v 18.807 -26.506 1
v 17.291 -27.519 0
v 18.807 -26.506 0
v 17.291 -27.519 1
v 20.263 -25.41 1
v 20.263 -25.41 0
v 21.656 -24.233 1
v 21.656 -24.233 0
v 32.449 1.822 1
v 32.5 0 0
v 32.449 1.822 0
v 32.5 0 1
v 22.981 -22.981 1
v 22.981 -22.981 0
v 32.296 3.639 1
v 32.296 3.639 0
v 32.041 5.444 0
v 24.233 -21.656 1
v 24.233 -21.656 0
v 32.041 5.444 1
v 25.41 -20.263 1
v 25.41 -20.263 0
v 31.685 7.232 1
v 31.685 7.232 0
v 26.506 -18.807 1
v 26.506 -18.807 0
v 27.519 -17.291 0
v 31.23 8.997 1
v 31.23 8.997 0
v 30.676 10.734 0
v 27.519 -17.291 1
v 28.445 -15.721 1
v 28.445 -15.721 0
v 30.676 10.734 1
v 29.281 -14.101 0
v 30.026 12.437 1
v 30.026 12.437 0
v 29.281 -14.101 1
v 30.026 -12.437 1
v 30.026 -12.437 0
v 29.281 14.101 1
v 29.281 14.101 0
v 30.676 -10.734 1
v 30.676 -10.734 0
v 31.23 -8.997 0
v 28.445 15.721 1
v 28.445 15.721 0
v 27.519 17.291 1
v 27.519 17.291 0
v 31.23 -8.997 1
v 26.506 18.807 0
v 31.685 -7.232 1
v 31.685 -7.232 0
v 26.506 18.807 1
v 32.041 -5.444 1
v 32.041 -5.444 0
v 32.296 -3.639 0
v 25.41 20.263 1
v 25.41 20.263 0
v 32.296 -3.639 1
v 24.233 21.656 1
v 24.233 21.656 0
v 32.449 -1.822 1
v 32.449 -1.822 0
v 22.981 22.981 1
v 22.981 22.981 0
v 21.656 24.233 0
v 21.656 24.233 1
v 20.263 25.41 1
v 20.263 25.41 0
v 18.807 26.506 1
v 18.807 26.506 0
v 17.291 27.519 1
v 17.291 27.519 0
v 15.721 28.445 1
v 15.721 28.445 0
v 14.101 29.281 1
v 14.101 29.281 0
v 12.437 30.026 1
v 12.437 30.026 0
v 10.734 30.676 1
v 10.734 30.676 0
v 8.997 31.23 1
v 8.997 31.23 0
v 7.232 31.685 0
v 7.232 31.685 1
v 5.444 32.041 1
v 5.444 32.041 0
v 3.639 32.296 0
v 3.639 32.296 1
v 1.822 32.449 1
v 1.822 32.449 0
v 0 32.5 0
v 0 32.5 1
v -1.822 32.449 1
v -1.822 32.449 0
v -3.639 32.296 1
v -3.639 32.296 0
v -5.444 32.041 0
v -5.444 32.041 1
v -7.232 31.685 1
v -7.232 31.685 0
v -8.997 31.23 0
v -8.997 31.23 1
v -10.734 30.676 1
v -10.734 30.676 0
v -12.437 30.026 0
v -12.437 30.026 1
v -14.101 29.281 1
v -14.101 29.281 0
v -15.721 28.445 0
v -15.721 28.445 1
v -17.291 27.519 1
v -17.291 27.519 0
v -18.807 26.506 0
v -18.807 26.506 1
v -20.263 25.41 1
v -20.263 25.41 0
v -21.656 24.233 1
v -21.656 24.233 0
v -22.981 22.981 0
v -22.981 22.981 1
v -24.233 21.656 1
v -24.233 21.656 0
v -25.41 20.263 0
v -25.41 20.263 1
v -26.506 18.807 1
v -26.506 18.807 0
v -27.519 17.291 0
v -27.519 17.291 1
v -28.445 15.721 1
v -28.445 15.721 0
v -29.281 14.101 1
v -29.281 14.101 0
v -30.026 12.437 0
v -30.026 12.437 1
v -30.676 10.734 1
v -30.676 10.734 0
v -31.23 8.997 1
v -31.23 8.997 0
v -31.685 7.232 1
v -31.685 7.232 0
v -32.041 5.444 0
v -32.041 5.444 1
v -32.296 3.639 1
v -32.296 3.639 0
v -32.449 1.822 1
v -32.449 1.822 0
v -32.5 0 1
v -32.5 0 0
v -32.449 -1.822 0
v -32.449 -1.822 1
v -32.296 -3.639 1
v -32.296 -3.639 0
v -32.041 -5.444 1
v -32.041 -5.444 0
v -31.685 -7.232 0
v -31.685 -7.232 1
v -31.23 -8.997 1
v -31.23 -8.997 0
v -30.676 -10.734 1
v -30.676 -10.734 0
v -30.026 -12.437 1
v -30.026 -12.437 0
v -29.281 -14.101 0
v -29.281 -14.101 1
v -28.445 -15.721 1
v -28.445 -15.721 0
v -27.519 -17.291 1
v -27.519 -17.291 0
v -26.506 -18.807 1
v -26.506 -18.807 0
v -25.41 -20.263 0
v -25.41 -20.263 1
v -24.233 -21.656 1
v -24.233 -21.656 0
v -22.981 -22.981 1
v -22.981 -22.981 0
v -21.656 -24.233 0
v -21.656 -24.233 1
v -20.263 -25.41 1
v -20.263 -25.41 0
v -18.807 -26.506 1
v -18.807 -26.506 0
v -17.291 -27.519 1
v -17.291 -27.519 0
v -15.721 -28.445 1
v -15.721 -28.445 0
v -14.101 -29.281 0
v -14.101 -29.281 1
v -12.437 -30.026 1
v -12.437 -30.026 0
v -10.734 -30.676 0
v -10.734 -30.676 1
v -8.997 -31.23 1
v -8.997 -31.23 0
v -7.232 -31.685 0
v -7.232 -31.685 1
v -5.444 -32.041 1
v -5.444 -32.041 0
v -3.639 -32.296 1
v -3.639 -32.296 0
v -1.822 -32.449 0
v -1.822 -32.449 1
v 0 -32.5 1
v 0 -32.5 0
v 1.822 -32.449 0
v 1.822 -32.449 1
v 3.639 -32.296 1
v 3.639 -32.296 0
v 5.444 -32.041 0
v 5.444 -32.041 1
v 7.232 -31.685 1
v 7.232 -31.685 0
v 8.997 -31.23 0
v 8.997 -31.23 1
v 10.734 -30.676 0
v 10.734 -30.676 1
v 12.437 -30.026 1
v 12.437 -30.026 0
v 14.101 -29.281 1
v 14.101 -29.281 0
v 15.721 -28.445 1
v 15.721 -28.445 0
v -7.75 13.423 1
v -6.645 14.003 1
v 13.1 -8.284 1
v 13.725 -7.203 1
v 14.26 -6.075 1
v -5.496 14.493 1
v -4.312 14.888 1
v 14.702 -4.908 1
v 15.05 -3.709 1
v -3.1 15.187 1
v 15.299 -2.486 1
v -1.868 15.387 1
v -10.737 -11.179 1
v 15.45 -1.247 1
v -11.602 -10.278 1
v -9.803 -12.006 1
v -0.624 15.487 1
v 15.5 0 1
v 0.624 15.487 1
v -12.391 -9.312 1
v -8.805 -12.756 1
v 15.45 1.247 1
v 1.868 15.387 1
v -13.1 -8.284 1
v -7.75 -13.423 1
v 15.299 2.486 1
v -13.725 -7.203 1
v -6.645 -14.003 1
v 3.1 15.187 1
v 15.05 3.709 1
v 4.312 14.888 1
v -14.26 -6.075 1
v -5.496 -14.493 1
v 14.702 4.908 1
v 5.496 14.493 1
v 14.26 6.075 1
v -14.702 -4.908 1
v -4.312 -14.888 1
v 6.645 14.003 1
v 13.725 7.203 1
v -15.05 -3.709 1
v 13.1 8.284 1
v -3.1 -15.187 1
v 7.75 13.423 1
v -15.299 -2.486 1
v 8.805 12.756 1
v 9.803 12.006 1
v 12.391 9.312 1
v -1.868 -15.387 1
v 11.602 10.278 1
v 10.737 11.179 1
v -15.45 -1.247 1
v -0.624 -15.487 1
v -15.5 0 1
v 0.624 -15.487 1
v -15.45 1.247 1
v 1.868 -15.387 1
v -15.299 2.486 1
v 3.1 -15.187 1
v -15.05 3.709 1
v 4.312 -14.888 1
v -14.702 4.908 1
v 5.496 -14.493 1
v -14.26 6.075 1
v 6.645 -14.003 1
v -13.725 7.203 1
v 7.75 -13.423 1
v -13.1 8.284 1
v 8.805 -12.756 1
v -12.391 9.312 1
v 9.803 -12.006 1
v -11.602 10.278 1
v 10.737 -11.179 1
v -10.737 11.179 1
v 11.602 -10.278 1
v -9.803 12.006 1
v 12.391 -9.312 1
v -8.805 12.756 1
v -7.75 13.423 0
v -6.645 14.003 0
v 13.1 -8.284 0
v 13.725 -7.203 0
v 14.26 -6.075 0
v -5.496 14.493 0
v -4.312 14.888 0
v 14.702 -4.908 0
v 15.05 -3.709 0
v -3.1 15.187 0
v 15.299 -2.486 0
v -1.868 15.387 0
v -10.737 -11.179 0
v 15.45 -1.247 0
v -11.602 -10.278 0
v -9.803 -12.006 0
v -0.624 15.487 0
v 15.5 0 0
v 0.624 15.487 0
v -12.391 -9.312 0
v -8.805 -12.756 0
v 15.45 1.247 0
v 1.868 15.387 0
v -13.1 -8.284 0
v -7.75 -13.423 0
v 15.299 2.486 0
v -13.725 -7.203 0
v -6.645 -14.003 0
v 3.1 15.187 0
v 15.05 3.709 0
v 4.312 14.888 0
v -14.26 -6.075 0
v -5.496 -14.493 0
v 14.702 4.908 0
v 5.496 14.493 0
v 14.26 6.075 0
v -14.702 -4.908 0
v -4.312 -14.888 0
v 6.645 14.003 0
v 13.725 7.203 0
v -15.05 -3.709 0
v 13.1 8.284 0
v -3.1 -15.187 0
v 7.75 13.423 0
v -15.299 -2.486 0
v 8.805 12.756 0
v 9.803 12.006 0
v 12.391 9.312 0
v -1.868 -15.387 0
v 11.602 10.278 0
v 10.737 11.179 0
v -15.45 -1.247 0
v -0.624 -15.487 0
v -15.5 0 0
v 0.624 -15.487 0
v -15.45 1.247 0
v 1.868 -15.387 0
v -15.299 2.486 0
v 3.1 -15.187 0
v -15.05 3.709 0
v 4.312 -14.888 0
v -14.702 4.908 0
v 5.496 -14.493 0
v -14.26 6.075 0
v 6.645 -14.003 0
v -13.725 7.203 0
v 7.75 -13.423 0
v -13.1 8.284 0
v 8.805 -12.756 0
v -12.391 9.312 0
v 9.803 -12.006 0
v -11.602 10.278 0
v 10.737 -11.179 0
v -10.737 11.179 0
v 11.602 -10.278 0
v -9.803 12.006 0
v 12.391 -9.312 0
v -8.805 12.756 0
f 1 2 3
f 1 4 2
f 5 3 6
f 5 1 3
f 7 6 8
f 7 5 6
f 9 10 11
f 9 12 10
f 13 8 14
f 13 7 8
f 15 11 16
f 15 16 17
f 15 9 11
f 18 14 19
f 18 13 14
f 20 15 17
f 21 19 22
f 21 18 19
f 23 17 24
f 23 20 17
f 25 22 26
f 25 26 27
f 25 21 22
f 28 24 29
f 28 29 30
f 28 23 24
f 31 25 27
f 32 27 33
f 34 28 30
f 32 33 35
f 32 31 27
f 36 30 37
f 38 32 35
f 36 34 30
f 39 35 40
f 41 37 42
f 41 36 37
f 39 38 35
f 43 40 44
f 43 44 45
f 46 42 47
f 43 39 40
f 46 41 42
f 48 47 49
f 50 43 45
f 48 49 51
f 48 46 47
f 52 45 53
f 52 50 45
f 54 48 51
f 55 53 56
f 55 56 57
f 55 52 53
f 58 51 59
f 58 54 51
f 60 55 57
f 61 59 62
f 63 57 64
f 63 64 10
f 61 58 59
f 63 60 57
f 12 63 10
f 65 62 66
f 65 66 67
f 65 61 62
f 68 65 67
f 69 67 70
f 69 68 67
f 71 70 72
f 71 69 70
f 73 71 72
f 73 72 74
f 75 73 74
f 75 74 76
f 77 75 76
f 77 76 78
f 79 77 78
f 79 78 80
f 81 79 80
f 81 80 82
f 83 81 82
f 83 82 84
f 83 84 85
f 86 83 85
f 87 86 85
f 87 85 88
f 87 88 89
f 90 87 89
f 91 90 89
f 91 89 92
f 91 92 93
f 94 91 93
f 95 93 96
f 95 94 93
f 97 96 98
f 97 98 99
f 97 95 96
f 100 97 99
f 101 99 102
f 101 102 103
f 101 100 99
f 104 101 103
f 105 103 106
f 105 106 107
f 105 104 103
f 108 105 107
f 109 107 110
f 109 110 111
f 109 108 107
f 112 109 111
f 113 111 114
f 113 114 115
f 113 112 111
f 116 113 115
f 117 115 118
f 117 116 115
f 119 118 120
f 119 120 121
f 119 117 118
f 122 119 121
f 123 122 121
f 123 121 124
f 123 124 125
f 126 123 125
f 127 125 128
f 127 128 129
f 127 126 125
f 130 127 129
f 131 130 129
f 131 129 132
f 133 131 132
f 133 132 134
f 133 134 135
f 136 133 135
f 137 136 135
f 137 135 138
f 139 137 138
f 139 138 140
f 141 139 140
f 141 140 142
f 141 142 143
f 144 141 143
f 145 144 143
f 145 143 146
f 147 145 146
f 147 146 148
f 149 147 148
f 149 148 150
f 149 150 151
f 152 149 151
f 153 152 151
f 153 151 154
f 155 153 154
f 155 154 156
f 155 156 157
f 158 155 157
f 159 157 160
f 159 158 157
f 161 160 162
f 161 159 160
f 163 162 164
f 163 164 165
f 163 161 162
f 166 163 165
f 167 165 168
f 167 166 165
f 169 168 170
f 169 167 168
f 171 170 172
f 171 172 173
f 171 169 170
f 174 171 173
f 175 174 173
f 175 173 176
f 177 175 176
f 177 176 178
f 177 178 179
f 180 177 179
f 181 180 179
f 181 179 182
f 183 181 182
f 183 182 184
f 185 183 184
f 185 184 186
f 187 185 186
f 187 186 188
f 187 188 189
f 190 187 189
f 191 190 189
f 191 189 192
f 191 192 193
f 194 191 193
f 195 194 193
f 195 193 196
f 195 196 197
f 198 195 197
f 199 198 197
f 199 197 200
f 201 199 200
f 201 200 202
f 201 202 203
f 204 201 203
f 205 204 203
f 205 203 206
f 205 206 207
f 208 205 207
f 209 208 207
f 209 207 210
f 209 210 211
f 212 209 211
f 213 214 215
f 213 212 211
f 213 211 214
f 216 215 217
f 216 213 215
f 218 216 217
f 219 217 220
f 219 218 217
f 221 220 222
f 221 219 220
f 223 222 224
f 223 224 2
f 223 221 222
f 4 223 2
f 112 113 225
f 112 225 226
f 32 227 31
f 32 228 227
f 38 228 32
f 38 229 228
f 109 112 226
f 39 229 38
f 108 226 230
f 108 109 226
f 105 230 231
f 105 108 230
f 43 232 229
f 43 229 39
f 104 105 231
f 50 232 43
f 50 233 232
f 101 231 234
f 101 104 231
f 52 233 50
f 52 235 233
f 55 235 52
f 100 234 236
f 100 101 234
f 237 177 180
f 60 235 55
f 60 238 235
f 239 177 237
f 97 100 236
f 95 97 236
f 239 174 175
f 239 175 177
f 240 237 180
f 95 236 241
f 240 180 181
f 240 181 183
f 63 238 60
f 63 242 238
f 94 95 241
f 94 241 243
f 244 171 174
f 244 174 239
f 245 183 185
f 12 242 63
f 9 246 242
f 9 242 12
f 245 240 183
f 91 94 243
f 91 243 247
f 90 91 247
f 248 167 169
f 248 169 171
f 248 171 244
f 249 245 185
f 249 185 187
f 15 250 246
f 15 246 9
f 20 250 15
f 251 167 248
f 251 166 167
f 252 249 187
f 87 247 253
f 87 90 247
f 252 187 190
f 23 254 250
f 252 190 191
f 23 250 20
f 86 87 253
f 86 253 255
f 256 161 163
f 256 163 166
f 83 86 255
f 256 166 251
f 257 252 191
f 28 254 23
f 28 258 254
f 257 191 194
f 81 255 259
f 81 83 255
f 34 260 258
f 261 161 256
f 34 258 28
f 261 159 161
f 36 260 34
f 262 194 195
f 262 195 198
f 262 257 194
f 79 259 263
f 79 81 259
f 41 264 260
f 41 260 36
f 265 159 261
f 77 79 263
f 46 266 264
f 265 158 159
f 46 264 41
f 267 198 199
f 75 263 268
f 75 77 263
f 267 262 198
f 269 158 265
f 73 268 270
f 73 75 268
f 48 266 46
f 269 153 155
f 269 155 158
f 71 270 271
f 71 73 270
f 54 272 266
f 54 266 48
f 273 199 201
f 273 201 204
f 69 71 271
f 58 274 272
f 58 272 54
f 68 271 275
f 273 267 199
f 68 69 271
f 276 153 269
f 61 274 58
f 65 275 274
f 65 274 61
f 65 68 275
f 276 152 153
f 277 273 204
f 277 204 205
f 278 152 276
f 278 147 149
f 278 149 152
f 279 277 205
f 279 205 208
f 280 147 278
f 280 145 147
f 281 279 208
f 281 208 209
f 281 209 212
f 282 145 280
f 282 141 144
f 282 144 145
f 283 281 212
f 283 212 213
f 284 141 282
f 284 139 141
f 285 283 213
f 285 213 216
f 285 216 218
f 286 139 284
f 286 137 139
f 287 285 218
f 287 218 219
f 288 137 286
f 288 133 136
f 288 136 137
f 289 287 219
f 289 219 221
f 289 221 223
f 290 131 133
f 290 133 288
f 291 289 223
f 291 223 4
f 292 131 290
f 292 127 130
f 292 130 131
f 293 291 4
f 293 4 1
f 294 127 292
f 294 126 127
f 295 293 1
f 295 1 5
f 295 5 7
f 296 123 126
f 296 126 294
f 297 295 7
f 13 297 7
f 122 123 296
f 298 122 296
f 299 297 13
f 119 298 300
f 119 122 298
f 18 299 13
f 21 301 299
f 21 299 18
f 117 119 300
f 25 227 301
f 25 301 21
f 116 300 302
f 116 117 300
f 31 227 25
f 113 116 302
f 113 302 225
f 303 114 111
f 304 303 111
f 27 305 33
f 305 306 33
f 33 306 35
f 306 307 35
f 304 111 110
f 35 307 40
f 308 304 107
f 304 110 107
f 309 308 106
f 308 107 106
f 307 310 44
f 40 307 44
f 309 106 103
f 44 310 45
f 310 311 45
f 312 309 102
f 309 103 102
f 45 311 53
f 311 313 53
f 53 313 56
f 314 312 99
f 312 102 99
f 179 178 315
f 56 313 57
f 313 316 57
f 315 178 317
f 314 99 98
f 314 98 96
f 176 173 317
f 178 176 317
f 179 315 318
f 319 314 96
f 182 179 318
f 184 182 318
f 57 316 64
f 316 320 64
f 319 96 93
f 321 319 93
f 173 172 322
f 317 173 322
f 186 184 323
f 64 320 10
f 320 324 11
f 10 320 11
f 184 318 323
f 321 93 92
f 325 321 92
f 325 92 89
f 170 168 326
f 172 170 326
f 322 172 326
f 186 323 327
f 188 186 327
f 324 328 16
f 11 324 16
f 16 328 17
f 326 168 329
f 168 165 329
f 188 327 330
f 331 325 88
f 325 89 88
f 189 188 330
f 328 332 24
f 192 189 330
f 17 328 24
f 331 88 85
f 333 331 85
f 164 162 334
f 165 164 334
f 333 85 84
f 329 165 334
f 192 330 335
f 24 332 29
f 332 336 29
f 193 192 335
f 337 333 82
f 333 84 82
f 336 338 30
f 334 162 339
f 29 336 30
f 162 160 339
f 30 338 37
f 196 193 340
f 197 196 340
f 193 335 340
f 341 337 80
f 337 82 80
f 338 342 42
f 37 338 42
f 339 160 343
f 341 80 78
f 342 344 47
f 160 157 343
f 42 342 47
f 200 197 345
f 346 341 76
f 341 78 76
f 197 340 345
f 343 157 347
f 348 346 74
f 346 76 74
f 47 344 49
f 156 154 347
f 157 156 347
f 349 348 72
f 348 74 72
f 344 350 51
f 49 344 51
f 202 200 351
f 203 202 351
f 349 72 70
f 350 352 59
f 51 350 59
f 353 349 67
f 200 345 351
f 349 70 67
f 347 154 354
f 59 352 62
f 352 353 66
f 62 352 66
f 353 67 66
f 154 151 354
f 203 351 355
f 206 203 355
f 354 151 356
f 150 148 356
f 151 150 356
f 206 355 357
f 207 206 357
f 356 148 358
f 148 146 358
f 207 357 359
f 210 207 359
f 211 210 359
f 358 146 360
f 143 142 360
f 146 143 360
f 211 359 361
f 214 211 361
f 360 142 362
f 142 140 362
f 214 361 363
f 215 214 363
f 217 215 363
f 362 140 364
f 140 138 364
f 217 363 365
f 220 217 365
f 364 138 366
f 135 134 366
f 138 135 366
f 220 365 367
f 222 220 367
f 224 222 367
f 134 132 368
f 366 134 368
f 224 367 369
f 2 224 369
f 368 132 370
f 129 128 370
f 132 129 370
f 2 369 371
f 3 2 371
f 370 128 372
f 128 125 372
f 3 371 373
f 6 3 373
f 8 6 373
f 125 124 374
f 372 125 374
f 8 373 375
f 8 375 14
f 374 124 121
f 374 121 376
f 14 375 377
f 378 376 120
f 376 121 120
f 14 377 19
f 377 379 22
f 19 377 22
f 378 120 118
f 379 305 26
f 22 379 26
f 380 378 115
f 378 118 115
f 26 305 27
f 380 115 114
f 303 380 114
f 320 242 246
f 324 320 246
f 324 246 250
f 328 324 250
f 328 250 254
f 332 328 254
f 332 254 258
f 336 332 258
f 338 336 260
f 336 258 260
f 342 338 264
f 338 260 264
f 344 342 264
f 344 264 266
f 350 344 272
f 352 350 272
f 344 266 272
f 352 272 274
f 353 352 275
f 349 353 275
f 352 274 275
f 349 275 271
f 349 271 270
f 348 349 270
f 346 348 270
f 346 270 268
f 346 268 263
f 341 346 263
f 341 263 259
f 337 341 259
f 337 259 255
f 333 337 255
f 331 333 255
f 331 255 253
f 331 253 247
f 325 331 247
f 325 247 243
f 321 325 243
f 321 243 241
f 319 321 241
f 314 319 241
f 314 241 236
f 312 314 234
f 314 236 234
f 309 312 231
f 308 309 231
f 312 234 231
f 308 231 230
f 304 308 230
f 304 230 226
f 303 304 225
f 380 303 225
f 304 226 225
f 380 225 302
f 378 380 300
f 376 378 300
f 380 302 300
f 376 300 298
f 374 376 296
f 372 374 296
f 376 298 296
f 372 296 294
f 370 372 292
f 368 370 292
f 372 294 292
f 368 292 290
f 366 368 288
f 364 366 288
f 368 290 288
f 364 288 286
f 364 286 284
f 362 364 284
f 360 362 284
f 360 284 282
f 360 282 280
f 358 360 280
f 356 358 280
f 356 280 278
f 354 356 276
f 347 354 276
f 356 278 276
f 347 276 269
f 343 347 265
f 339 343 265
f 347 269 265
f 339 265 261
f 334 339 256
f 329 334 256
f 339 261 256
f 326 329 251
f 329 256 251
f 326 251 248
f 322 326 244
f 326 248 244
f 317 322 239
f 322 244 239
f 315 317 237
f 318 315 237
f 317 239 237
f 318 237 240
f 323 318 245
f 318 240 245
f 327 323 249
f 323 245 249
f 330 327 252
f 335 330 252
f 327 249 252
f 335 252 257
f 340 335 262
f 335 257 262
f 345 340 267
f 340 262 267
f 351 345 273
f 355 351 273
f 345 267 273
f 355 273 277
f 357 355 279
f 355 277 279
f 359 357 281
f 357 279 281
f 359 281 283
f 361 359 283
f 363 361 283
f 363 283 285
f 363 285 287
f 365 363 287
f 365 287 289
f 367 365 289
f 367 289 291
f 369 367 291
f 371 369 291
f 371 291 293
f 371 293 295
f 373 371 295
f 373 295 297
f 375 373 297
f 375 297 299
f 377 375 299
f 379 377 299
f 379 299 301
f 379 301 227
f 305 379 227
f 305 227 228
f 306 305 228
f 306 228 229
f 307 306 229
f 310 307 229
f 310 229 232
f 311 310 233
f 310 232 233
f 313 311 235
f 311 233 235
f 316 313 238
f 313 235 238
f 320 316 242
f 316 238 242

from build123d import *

# Parameters (mm, degrees)
CYLINDER_R        = 15.5
CYLINDER_DEPTH    = 10
CYLINDER001_R     = 32.5
CYLINDER001_DEPTH = 1


with BuildPart() as cylinder:
    # Cylinder → Cylinder (new body)
    with BuildSketch(Plane.XY.offset(-2)):
        Circle(CYLINDER_R)
    extrude(amount=CYLINDER_DEPTH)


with BuildPart() as cut:
    # Cylinder001 → Cylinder001 (new body)
    with BuildSketch(Plane.XY):
        Circle(CYLINDER001_R)
    extrude(amount=CYLINDER001_DEPTH)

    # Cut: cut Cylinder
    add(cylinder.part, mode=Mode.SUBTRACT)


solid = cut.part
